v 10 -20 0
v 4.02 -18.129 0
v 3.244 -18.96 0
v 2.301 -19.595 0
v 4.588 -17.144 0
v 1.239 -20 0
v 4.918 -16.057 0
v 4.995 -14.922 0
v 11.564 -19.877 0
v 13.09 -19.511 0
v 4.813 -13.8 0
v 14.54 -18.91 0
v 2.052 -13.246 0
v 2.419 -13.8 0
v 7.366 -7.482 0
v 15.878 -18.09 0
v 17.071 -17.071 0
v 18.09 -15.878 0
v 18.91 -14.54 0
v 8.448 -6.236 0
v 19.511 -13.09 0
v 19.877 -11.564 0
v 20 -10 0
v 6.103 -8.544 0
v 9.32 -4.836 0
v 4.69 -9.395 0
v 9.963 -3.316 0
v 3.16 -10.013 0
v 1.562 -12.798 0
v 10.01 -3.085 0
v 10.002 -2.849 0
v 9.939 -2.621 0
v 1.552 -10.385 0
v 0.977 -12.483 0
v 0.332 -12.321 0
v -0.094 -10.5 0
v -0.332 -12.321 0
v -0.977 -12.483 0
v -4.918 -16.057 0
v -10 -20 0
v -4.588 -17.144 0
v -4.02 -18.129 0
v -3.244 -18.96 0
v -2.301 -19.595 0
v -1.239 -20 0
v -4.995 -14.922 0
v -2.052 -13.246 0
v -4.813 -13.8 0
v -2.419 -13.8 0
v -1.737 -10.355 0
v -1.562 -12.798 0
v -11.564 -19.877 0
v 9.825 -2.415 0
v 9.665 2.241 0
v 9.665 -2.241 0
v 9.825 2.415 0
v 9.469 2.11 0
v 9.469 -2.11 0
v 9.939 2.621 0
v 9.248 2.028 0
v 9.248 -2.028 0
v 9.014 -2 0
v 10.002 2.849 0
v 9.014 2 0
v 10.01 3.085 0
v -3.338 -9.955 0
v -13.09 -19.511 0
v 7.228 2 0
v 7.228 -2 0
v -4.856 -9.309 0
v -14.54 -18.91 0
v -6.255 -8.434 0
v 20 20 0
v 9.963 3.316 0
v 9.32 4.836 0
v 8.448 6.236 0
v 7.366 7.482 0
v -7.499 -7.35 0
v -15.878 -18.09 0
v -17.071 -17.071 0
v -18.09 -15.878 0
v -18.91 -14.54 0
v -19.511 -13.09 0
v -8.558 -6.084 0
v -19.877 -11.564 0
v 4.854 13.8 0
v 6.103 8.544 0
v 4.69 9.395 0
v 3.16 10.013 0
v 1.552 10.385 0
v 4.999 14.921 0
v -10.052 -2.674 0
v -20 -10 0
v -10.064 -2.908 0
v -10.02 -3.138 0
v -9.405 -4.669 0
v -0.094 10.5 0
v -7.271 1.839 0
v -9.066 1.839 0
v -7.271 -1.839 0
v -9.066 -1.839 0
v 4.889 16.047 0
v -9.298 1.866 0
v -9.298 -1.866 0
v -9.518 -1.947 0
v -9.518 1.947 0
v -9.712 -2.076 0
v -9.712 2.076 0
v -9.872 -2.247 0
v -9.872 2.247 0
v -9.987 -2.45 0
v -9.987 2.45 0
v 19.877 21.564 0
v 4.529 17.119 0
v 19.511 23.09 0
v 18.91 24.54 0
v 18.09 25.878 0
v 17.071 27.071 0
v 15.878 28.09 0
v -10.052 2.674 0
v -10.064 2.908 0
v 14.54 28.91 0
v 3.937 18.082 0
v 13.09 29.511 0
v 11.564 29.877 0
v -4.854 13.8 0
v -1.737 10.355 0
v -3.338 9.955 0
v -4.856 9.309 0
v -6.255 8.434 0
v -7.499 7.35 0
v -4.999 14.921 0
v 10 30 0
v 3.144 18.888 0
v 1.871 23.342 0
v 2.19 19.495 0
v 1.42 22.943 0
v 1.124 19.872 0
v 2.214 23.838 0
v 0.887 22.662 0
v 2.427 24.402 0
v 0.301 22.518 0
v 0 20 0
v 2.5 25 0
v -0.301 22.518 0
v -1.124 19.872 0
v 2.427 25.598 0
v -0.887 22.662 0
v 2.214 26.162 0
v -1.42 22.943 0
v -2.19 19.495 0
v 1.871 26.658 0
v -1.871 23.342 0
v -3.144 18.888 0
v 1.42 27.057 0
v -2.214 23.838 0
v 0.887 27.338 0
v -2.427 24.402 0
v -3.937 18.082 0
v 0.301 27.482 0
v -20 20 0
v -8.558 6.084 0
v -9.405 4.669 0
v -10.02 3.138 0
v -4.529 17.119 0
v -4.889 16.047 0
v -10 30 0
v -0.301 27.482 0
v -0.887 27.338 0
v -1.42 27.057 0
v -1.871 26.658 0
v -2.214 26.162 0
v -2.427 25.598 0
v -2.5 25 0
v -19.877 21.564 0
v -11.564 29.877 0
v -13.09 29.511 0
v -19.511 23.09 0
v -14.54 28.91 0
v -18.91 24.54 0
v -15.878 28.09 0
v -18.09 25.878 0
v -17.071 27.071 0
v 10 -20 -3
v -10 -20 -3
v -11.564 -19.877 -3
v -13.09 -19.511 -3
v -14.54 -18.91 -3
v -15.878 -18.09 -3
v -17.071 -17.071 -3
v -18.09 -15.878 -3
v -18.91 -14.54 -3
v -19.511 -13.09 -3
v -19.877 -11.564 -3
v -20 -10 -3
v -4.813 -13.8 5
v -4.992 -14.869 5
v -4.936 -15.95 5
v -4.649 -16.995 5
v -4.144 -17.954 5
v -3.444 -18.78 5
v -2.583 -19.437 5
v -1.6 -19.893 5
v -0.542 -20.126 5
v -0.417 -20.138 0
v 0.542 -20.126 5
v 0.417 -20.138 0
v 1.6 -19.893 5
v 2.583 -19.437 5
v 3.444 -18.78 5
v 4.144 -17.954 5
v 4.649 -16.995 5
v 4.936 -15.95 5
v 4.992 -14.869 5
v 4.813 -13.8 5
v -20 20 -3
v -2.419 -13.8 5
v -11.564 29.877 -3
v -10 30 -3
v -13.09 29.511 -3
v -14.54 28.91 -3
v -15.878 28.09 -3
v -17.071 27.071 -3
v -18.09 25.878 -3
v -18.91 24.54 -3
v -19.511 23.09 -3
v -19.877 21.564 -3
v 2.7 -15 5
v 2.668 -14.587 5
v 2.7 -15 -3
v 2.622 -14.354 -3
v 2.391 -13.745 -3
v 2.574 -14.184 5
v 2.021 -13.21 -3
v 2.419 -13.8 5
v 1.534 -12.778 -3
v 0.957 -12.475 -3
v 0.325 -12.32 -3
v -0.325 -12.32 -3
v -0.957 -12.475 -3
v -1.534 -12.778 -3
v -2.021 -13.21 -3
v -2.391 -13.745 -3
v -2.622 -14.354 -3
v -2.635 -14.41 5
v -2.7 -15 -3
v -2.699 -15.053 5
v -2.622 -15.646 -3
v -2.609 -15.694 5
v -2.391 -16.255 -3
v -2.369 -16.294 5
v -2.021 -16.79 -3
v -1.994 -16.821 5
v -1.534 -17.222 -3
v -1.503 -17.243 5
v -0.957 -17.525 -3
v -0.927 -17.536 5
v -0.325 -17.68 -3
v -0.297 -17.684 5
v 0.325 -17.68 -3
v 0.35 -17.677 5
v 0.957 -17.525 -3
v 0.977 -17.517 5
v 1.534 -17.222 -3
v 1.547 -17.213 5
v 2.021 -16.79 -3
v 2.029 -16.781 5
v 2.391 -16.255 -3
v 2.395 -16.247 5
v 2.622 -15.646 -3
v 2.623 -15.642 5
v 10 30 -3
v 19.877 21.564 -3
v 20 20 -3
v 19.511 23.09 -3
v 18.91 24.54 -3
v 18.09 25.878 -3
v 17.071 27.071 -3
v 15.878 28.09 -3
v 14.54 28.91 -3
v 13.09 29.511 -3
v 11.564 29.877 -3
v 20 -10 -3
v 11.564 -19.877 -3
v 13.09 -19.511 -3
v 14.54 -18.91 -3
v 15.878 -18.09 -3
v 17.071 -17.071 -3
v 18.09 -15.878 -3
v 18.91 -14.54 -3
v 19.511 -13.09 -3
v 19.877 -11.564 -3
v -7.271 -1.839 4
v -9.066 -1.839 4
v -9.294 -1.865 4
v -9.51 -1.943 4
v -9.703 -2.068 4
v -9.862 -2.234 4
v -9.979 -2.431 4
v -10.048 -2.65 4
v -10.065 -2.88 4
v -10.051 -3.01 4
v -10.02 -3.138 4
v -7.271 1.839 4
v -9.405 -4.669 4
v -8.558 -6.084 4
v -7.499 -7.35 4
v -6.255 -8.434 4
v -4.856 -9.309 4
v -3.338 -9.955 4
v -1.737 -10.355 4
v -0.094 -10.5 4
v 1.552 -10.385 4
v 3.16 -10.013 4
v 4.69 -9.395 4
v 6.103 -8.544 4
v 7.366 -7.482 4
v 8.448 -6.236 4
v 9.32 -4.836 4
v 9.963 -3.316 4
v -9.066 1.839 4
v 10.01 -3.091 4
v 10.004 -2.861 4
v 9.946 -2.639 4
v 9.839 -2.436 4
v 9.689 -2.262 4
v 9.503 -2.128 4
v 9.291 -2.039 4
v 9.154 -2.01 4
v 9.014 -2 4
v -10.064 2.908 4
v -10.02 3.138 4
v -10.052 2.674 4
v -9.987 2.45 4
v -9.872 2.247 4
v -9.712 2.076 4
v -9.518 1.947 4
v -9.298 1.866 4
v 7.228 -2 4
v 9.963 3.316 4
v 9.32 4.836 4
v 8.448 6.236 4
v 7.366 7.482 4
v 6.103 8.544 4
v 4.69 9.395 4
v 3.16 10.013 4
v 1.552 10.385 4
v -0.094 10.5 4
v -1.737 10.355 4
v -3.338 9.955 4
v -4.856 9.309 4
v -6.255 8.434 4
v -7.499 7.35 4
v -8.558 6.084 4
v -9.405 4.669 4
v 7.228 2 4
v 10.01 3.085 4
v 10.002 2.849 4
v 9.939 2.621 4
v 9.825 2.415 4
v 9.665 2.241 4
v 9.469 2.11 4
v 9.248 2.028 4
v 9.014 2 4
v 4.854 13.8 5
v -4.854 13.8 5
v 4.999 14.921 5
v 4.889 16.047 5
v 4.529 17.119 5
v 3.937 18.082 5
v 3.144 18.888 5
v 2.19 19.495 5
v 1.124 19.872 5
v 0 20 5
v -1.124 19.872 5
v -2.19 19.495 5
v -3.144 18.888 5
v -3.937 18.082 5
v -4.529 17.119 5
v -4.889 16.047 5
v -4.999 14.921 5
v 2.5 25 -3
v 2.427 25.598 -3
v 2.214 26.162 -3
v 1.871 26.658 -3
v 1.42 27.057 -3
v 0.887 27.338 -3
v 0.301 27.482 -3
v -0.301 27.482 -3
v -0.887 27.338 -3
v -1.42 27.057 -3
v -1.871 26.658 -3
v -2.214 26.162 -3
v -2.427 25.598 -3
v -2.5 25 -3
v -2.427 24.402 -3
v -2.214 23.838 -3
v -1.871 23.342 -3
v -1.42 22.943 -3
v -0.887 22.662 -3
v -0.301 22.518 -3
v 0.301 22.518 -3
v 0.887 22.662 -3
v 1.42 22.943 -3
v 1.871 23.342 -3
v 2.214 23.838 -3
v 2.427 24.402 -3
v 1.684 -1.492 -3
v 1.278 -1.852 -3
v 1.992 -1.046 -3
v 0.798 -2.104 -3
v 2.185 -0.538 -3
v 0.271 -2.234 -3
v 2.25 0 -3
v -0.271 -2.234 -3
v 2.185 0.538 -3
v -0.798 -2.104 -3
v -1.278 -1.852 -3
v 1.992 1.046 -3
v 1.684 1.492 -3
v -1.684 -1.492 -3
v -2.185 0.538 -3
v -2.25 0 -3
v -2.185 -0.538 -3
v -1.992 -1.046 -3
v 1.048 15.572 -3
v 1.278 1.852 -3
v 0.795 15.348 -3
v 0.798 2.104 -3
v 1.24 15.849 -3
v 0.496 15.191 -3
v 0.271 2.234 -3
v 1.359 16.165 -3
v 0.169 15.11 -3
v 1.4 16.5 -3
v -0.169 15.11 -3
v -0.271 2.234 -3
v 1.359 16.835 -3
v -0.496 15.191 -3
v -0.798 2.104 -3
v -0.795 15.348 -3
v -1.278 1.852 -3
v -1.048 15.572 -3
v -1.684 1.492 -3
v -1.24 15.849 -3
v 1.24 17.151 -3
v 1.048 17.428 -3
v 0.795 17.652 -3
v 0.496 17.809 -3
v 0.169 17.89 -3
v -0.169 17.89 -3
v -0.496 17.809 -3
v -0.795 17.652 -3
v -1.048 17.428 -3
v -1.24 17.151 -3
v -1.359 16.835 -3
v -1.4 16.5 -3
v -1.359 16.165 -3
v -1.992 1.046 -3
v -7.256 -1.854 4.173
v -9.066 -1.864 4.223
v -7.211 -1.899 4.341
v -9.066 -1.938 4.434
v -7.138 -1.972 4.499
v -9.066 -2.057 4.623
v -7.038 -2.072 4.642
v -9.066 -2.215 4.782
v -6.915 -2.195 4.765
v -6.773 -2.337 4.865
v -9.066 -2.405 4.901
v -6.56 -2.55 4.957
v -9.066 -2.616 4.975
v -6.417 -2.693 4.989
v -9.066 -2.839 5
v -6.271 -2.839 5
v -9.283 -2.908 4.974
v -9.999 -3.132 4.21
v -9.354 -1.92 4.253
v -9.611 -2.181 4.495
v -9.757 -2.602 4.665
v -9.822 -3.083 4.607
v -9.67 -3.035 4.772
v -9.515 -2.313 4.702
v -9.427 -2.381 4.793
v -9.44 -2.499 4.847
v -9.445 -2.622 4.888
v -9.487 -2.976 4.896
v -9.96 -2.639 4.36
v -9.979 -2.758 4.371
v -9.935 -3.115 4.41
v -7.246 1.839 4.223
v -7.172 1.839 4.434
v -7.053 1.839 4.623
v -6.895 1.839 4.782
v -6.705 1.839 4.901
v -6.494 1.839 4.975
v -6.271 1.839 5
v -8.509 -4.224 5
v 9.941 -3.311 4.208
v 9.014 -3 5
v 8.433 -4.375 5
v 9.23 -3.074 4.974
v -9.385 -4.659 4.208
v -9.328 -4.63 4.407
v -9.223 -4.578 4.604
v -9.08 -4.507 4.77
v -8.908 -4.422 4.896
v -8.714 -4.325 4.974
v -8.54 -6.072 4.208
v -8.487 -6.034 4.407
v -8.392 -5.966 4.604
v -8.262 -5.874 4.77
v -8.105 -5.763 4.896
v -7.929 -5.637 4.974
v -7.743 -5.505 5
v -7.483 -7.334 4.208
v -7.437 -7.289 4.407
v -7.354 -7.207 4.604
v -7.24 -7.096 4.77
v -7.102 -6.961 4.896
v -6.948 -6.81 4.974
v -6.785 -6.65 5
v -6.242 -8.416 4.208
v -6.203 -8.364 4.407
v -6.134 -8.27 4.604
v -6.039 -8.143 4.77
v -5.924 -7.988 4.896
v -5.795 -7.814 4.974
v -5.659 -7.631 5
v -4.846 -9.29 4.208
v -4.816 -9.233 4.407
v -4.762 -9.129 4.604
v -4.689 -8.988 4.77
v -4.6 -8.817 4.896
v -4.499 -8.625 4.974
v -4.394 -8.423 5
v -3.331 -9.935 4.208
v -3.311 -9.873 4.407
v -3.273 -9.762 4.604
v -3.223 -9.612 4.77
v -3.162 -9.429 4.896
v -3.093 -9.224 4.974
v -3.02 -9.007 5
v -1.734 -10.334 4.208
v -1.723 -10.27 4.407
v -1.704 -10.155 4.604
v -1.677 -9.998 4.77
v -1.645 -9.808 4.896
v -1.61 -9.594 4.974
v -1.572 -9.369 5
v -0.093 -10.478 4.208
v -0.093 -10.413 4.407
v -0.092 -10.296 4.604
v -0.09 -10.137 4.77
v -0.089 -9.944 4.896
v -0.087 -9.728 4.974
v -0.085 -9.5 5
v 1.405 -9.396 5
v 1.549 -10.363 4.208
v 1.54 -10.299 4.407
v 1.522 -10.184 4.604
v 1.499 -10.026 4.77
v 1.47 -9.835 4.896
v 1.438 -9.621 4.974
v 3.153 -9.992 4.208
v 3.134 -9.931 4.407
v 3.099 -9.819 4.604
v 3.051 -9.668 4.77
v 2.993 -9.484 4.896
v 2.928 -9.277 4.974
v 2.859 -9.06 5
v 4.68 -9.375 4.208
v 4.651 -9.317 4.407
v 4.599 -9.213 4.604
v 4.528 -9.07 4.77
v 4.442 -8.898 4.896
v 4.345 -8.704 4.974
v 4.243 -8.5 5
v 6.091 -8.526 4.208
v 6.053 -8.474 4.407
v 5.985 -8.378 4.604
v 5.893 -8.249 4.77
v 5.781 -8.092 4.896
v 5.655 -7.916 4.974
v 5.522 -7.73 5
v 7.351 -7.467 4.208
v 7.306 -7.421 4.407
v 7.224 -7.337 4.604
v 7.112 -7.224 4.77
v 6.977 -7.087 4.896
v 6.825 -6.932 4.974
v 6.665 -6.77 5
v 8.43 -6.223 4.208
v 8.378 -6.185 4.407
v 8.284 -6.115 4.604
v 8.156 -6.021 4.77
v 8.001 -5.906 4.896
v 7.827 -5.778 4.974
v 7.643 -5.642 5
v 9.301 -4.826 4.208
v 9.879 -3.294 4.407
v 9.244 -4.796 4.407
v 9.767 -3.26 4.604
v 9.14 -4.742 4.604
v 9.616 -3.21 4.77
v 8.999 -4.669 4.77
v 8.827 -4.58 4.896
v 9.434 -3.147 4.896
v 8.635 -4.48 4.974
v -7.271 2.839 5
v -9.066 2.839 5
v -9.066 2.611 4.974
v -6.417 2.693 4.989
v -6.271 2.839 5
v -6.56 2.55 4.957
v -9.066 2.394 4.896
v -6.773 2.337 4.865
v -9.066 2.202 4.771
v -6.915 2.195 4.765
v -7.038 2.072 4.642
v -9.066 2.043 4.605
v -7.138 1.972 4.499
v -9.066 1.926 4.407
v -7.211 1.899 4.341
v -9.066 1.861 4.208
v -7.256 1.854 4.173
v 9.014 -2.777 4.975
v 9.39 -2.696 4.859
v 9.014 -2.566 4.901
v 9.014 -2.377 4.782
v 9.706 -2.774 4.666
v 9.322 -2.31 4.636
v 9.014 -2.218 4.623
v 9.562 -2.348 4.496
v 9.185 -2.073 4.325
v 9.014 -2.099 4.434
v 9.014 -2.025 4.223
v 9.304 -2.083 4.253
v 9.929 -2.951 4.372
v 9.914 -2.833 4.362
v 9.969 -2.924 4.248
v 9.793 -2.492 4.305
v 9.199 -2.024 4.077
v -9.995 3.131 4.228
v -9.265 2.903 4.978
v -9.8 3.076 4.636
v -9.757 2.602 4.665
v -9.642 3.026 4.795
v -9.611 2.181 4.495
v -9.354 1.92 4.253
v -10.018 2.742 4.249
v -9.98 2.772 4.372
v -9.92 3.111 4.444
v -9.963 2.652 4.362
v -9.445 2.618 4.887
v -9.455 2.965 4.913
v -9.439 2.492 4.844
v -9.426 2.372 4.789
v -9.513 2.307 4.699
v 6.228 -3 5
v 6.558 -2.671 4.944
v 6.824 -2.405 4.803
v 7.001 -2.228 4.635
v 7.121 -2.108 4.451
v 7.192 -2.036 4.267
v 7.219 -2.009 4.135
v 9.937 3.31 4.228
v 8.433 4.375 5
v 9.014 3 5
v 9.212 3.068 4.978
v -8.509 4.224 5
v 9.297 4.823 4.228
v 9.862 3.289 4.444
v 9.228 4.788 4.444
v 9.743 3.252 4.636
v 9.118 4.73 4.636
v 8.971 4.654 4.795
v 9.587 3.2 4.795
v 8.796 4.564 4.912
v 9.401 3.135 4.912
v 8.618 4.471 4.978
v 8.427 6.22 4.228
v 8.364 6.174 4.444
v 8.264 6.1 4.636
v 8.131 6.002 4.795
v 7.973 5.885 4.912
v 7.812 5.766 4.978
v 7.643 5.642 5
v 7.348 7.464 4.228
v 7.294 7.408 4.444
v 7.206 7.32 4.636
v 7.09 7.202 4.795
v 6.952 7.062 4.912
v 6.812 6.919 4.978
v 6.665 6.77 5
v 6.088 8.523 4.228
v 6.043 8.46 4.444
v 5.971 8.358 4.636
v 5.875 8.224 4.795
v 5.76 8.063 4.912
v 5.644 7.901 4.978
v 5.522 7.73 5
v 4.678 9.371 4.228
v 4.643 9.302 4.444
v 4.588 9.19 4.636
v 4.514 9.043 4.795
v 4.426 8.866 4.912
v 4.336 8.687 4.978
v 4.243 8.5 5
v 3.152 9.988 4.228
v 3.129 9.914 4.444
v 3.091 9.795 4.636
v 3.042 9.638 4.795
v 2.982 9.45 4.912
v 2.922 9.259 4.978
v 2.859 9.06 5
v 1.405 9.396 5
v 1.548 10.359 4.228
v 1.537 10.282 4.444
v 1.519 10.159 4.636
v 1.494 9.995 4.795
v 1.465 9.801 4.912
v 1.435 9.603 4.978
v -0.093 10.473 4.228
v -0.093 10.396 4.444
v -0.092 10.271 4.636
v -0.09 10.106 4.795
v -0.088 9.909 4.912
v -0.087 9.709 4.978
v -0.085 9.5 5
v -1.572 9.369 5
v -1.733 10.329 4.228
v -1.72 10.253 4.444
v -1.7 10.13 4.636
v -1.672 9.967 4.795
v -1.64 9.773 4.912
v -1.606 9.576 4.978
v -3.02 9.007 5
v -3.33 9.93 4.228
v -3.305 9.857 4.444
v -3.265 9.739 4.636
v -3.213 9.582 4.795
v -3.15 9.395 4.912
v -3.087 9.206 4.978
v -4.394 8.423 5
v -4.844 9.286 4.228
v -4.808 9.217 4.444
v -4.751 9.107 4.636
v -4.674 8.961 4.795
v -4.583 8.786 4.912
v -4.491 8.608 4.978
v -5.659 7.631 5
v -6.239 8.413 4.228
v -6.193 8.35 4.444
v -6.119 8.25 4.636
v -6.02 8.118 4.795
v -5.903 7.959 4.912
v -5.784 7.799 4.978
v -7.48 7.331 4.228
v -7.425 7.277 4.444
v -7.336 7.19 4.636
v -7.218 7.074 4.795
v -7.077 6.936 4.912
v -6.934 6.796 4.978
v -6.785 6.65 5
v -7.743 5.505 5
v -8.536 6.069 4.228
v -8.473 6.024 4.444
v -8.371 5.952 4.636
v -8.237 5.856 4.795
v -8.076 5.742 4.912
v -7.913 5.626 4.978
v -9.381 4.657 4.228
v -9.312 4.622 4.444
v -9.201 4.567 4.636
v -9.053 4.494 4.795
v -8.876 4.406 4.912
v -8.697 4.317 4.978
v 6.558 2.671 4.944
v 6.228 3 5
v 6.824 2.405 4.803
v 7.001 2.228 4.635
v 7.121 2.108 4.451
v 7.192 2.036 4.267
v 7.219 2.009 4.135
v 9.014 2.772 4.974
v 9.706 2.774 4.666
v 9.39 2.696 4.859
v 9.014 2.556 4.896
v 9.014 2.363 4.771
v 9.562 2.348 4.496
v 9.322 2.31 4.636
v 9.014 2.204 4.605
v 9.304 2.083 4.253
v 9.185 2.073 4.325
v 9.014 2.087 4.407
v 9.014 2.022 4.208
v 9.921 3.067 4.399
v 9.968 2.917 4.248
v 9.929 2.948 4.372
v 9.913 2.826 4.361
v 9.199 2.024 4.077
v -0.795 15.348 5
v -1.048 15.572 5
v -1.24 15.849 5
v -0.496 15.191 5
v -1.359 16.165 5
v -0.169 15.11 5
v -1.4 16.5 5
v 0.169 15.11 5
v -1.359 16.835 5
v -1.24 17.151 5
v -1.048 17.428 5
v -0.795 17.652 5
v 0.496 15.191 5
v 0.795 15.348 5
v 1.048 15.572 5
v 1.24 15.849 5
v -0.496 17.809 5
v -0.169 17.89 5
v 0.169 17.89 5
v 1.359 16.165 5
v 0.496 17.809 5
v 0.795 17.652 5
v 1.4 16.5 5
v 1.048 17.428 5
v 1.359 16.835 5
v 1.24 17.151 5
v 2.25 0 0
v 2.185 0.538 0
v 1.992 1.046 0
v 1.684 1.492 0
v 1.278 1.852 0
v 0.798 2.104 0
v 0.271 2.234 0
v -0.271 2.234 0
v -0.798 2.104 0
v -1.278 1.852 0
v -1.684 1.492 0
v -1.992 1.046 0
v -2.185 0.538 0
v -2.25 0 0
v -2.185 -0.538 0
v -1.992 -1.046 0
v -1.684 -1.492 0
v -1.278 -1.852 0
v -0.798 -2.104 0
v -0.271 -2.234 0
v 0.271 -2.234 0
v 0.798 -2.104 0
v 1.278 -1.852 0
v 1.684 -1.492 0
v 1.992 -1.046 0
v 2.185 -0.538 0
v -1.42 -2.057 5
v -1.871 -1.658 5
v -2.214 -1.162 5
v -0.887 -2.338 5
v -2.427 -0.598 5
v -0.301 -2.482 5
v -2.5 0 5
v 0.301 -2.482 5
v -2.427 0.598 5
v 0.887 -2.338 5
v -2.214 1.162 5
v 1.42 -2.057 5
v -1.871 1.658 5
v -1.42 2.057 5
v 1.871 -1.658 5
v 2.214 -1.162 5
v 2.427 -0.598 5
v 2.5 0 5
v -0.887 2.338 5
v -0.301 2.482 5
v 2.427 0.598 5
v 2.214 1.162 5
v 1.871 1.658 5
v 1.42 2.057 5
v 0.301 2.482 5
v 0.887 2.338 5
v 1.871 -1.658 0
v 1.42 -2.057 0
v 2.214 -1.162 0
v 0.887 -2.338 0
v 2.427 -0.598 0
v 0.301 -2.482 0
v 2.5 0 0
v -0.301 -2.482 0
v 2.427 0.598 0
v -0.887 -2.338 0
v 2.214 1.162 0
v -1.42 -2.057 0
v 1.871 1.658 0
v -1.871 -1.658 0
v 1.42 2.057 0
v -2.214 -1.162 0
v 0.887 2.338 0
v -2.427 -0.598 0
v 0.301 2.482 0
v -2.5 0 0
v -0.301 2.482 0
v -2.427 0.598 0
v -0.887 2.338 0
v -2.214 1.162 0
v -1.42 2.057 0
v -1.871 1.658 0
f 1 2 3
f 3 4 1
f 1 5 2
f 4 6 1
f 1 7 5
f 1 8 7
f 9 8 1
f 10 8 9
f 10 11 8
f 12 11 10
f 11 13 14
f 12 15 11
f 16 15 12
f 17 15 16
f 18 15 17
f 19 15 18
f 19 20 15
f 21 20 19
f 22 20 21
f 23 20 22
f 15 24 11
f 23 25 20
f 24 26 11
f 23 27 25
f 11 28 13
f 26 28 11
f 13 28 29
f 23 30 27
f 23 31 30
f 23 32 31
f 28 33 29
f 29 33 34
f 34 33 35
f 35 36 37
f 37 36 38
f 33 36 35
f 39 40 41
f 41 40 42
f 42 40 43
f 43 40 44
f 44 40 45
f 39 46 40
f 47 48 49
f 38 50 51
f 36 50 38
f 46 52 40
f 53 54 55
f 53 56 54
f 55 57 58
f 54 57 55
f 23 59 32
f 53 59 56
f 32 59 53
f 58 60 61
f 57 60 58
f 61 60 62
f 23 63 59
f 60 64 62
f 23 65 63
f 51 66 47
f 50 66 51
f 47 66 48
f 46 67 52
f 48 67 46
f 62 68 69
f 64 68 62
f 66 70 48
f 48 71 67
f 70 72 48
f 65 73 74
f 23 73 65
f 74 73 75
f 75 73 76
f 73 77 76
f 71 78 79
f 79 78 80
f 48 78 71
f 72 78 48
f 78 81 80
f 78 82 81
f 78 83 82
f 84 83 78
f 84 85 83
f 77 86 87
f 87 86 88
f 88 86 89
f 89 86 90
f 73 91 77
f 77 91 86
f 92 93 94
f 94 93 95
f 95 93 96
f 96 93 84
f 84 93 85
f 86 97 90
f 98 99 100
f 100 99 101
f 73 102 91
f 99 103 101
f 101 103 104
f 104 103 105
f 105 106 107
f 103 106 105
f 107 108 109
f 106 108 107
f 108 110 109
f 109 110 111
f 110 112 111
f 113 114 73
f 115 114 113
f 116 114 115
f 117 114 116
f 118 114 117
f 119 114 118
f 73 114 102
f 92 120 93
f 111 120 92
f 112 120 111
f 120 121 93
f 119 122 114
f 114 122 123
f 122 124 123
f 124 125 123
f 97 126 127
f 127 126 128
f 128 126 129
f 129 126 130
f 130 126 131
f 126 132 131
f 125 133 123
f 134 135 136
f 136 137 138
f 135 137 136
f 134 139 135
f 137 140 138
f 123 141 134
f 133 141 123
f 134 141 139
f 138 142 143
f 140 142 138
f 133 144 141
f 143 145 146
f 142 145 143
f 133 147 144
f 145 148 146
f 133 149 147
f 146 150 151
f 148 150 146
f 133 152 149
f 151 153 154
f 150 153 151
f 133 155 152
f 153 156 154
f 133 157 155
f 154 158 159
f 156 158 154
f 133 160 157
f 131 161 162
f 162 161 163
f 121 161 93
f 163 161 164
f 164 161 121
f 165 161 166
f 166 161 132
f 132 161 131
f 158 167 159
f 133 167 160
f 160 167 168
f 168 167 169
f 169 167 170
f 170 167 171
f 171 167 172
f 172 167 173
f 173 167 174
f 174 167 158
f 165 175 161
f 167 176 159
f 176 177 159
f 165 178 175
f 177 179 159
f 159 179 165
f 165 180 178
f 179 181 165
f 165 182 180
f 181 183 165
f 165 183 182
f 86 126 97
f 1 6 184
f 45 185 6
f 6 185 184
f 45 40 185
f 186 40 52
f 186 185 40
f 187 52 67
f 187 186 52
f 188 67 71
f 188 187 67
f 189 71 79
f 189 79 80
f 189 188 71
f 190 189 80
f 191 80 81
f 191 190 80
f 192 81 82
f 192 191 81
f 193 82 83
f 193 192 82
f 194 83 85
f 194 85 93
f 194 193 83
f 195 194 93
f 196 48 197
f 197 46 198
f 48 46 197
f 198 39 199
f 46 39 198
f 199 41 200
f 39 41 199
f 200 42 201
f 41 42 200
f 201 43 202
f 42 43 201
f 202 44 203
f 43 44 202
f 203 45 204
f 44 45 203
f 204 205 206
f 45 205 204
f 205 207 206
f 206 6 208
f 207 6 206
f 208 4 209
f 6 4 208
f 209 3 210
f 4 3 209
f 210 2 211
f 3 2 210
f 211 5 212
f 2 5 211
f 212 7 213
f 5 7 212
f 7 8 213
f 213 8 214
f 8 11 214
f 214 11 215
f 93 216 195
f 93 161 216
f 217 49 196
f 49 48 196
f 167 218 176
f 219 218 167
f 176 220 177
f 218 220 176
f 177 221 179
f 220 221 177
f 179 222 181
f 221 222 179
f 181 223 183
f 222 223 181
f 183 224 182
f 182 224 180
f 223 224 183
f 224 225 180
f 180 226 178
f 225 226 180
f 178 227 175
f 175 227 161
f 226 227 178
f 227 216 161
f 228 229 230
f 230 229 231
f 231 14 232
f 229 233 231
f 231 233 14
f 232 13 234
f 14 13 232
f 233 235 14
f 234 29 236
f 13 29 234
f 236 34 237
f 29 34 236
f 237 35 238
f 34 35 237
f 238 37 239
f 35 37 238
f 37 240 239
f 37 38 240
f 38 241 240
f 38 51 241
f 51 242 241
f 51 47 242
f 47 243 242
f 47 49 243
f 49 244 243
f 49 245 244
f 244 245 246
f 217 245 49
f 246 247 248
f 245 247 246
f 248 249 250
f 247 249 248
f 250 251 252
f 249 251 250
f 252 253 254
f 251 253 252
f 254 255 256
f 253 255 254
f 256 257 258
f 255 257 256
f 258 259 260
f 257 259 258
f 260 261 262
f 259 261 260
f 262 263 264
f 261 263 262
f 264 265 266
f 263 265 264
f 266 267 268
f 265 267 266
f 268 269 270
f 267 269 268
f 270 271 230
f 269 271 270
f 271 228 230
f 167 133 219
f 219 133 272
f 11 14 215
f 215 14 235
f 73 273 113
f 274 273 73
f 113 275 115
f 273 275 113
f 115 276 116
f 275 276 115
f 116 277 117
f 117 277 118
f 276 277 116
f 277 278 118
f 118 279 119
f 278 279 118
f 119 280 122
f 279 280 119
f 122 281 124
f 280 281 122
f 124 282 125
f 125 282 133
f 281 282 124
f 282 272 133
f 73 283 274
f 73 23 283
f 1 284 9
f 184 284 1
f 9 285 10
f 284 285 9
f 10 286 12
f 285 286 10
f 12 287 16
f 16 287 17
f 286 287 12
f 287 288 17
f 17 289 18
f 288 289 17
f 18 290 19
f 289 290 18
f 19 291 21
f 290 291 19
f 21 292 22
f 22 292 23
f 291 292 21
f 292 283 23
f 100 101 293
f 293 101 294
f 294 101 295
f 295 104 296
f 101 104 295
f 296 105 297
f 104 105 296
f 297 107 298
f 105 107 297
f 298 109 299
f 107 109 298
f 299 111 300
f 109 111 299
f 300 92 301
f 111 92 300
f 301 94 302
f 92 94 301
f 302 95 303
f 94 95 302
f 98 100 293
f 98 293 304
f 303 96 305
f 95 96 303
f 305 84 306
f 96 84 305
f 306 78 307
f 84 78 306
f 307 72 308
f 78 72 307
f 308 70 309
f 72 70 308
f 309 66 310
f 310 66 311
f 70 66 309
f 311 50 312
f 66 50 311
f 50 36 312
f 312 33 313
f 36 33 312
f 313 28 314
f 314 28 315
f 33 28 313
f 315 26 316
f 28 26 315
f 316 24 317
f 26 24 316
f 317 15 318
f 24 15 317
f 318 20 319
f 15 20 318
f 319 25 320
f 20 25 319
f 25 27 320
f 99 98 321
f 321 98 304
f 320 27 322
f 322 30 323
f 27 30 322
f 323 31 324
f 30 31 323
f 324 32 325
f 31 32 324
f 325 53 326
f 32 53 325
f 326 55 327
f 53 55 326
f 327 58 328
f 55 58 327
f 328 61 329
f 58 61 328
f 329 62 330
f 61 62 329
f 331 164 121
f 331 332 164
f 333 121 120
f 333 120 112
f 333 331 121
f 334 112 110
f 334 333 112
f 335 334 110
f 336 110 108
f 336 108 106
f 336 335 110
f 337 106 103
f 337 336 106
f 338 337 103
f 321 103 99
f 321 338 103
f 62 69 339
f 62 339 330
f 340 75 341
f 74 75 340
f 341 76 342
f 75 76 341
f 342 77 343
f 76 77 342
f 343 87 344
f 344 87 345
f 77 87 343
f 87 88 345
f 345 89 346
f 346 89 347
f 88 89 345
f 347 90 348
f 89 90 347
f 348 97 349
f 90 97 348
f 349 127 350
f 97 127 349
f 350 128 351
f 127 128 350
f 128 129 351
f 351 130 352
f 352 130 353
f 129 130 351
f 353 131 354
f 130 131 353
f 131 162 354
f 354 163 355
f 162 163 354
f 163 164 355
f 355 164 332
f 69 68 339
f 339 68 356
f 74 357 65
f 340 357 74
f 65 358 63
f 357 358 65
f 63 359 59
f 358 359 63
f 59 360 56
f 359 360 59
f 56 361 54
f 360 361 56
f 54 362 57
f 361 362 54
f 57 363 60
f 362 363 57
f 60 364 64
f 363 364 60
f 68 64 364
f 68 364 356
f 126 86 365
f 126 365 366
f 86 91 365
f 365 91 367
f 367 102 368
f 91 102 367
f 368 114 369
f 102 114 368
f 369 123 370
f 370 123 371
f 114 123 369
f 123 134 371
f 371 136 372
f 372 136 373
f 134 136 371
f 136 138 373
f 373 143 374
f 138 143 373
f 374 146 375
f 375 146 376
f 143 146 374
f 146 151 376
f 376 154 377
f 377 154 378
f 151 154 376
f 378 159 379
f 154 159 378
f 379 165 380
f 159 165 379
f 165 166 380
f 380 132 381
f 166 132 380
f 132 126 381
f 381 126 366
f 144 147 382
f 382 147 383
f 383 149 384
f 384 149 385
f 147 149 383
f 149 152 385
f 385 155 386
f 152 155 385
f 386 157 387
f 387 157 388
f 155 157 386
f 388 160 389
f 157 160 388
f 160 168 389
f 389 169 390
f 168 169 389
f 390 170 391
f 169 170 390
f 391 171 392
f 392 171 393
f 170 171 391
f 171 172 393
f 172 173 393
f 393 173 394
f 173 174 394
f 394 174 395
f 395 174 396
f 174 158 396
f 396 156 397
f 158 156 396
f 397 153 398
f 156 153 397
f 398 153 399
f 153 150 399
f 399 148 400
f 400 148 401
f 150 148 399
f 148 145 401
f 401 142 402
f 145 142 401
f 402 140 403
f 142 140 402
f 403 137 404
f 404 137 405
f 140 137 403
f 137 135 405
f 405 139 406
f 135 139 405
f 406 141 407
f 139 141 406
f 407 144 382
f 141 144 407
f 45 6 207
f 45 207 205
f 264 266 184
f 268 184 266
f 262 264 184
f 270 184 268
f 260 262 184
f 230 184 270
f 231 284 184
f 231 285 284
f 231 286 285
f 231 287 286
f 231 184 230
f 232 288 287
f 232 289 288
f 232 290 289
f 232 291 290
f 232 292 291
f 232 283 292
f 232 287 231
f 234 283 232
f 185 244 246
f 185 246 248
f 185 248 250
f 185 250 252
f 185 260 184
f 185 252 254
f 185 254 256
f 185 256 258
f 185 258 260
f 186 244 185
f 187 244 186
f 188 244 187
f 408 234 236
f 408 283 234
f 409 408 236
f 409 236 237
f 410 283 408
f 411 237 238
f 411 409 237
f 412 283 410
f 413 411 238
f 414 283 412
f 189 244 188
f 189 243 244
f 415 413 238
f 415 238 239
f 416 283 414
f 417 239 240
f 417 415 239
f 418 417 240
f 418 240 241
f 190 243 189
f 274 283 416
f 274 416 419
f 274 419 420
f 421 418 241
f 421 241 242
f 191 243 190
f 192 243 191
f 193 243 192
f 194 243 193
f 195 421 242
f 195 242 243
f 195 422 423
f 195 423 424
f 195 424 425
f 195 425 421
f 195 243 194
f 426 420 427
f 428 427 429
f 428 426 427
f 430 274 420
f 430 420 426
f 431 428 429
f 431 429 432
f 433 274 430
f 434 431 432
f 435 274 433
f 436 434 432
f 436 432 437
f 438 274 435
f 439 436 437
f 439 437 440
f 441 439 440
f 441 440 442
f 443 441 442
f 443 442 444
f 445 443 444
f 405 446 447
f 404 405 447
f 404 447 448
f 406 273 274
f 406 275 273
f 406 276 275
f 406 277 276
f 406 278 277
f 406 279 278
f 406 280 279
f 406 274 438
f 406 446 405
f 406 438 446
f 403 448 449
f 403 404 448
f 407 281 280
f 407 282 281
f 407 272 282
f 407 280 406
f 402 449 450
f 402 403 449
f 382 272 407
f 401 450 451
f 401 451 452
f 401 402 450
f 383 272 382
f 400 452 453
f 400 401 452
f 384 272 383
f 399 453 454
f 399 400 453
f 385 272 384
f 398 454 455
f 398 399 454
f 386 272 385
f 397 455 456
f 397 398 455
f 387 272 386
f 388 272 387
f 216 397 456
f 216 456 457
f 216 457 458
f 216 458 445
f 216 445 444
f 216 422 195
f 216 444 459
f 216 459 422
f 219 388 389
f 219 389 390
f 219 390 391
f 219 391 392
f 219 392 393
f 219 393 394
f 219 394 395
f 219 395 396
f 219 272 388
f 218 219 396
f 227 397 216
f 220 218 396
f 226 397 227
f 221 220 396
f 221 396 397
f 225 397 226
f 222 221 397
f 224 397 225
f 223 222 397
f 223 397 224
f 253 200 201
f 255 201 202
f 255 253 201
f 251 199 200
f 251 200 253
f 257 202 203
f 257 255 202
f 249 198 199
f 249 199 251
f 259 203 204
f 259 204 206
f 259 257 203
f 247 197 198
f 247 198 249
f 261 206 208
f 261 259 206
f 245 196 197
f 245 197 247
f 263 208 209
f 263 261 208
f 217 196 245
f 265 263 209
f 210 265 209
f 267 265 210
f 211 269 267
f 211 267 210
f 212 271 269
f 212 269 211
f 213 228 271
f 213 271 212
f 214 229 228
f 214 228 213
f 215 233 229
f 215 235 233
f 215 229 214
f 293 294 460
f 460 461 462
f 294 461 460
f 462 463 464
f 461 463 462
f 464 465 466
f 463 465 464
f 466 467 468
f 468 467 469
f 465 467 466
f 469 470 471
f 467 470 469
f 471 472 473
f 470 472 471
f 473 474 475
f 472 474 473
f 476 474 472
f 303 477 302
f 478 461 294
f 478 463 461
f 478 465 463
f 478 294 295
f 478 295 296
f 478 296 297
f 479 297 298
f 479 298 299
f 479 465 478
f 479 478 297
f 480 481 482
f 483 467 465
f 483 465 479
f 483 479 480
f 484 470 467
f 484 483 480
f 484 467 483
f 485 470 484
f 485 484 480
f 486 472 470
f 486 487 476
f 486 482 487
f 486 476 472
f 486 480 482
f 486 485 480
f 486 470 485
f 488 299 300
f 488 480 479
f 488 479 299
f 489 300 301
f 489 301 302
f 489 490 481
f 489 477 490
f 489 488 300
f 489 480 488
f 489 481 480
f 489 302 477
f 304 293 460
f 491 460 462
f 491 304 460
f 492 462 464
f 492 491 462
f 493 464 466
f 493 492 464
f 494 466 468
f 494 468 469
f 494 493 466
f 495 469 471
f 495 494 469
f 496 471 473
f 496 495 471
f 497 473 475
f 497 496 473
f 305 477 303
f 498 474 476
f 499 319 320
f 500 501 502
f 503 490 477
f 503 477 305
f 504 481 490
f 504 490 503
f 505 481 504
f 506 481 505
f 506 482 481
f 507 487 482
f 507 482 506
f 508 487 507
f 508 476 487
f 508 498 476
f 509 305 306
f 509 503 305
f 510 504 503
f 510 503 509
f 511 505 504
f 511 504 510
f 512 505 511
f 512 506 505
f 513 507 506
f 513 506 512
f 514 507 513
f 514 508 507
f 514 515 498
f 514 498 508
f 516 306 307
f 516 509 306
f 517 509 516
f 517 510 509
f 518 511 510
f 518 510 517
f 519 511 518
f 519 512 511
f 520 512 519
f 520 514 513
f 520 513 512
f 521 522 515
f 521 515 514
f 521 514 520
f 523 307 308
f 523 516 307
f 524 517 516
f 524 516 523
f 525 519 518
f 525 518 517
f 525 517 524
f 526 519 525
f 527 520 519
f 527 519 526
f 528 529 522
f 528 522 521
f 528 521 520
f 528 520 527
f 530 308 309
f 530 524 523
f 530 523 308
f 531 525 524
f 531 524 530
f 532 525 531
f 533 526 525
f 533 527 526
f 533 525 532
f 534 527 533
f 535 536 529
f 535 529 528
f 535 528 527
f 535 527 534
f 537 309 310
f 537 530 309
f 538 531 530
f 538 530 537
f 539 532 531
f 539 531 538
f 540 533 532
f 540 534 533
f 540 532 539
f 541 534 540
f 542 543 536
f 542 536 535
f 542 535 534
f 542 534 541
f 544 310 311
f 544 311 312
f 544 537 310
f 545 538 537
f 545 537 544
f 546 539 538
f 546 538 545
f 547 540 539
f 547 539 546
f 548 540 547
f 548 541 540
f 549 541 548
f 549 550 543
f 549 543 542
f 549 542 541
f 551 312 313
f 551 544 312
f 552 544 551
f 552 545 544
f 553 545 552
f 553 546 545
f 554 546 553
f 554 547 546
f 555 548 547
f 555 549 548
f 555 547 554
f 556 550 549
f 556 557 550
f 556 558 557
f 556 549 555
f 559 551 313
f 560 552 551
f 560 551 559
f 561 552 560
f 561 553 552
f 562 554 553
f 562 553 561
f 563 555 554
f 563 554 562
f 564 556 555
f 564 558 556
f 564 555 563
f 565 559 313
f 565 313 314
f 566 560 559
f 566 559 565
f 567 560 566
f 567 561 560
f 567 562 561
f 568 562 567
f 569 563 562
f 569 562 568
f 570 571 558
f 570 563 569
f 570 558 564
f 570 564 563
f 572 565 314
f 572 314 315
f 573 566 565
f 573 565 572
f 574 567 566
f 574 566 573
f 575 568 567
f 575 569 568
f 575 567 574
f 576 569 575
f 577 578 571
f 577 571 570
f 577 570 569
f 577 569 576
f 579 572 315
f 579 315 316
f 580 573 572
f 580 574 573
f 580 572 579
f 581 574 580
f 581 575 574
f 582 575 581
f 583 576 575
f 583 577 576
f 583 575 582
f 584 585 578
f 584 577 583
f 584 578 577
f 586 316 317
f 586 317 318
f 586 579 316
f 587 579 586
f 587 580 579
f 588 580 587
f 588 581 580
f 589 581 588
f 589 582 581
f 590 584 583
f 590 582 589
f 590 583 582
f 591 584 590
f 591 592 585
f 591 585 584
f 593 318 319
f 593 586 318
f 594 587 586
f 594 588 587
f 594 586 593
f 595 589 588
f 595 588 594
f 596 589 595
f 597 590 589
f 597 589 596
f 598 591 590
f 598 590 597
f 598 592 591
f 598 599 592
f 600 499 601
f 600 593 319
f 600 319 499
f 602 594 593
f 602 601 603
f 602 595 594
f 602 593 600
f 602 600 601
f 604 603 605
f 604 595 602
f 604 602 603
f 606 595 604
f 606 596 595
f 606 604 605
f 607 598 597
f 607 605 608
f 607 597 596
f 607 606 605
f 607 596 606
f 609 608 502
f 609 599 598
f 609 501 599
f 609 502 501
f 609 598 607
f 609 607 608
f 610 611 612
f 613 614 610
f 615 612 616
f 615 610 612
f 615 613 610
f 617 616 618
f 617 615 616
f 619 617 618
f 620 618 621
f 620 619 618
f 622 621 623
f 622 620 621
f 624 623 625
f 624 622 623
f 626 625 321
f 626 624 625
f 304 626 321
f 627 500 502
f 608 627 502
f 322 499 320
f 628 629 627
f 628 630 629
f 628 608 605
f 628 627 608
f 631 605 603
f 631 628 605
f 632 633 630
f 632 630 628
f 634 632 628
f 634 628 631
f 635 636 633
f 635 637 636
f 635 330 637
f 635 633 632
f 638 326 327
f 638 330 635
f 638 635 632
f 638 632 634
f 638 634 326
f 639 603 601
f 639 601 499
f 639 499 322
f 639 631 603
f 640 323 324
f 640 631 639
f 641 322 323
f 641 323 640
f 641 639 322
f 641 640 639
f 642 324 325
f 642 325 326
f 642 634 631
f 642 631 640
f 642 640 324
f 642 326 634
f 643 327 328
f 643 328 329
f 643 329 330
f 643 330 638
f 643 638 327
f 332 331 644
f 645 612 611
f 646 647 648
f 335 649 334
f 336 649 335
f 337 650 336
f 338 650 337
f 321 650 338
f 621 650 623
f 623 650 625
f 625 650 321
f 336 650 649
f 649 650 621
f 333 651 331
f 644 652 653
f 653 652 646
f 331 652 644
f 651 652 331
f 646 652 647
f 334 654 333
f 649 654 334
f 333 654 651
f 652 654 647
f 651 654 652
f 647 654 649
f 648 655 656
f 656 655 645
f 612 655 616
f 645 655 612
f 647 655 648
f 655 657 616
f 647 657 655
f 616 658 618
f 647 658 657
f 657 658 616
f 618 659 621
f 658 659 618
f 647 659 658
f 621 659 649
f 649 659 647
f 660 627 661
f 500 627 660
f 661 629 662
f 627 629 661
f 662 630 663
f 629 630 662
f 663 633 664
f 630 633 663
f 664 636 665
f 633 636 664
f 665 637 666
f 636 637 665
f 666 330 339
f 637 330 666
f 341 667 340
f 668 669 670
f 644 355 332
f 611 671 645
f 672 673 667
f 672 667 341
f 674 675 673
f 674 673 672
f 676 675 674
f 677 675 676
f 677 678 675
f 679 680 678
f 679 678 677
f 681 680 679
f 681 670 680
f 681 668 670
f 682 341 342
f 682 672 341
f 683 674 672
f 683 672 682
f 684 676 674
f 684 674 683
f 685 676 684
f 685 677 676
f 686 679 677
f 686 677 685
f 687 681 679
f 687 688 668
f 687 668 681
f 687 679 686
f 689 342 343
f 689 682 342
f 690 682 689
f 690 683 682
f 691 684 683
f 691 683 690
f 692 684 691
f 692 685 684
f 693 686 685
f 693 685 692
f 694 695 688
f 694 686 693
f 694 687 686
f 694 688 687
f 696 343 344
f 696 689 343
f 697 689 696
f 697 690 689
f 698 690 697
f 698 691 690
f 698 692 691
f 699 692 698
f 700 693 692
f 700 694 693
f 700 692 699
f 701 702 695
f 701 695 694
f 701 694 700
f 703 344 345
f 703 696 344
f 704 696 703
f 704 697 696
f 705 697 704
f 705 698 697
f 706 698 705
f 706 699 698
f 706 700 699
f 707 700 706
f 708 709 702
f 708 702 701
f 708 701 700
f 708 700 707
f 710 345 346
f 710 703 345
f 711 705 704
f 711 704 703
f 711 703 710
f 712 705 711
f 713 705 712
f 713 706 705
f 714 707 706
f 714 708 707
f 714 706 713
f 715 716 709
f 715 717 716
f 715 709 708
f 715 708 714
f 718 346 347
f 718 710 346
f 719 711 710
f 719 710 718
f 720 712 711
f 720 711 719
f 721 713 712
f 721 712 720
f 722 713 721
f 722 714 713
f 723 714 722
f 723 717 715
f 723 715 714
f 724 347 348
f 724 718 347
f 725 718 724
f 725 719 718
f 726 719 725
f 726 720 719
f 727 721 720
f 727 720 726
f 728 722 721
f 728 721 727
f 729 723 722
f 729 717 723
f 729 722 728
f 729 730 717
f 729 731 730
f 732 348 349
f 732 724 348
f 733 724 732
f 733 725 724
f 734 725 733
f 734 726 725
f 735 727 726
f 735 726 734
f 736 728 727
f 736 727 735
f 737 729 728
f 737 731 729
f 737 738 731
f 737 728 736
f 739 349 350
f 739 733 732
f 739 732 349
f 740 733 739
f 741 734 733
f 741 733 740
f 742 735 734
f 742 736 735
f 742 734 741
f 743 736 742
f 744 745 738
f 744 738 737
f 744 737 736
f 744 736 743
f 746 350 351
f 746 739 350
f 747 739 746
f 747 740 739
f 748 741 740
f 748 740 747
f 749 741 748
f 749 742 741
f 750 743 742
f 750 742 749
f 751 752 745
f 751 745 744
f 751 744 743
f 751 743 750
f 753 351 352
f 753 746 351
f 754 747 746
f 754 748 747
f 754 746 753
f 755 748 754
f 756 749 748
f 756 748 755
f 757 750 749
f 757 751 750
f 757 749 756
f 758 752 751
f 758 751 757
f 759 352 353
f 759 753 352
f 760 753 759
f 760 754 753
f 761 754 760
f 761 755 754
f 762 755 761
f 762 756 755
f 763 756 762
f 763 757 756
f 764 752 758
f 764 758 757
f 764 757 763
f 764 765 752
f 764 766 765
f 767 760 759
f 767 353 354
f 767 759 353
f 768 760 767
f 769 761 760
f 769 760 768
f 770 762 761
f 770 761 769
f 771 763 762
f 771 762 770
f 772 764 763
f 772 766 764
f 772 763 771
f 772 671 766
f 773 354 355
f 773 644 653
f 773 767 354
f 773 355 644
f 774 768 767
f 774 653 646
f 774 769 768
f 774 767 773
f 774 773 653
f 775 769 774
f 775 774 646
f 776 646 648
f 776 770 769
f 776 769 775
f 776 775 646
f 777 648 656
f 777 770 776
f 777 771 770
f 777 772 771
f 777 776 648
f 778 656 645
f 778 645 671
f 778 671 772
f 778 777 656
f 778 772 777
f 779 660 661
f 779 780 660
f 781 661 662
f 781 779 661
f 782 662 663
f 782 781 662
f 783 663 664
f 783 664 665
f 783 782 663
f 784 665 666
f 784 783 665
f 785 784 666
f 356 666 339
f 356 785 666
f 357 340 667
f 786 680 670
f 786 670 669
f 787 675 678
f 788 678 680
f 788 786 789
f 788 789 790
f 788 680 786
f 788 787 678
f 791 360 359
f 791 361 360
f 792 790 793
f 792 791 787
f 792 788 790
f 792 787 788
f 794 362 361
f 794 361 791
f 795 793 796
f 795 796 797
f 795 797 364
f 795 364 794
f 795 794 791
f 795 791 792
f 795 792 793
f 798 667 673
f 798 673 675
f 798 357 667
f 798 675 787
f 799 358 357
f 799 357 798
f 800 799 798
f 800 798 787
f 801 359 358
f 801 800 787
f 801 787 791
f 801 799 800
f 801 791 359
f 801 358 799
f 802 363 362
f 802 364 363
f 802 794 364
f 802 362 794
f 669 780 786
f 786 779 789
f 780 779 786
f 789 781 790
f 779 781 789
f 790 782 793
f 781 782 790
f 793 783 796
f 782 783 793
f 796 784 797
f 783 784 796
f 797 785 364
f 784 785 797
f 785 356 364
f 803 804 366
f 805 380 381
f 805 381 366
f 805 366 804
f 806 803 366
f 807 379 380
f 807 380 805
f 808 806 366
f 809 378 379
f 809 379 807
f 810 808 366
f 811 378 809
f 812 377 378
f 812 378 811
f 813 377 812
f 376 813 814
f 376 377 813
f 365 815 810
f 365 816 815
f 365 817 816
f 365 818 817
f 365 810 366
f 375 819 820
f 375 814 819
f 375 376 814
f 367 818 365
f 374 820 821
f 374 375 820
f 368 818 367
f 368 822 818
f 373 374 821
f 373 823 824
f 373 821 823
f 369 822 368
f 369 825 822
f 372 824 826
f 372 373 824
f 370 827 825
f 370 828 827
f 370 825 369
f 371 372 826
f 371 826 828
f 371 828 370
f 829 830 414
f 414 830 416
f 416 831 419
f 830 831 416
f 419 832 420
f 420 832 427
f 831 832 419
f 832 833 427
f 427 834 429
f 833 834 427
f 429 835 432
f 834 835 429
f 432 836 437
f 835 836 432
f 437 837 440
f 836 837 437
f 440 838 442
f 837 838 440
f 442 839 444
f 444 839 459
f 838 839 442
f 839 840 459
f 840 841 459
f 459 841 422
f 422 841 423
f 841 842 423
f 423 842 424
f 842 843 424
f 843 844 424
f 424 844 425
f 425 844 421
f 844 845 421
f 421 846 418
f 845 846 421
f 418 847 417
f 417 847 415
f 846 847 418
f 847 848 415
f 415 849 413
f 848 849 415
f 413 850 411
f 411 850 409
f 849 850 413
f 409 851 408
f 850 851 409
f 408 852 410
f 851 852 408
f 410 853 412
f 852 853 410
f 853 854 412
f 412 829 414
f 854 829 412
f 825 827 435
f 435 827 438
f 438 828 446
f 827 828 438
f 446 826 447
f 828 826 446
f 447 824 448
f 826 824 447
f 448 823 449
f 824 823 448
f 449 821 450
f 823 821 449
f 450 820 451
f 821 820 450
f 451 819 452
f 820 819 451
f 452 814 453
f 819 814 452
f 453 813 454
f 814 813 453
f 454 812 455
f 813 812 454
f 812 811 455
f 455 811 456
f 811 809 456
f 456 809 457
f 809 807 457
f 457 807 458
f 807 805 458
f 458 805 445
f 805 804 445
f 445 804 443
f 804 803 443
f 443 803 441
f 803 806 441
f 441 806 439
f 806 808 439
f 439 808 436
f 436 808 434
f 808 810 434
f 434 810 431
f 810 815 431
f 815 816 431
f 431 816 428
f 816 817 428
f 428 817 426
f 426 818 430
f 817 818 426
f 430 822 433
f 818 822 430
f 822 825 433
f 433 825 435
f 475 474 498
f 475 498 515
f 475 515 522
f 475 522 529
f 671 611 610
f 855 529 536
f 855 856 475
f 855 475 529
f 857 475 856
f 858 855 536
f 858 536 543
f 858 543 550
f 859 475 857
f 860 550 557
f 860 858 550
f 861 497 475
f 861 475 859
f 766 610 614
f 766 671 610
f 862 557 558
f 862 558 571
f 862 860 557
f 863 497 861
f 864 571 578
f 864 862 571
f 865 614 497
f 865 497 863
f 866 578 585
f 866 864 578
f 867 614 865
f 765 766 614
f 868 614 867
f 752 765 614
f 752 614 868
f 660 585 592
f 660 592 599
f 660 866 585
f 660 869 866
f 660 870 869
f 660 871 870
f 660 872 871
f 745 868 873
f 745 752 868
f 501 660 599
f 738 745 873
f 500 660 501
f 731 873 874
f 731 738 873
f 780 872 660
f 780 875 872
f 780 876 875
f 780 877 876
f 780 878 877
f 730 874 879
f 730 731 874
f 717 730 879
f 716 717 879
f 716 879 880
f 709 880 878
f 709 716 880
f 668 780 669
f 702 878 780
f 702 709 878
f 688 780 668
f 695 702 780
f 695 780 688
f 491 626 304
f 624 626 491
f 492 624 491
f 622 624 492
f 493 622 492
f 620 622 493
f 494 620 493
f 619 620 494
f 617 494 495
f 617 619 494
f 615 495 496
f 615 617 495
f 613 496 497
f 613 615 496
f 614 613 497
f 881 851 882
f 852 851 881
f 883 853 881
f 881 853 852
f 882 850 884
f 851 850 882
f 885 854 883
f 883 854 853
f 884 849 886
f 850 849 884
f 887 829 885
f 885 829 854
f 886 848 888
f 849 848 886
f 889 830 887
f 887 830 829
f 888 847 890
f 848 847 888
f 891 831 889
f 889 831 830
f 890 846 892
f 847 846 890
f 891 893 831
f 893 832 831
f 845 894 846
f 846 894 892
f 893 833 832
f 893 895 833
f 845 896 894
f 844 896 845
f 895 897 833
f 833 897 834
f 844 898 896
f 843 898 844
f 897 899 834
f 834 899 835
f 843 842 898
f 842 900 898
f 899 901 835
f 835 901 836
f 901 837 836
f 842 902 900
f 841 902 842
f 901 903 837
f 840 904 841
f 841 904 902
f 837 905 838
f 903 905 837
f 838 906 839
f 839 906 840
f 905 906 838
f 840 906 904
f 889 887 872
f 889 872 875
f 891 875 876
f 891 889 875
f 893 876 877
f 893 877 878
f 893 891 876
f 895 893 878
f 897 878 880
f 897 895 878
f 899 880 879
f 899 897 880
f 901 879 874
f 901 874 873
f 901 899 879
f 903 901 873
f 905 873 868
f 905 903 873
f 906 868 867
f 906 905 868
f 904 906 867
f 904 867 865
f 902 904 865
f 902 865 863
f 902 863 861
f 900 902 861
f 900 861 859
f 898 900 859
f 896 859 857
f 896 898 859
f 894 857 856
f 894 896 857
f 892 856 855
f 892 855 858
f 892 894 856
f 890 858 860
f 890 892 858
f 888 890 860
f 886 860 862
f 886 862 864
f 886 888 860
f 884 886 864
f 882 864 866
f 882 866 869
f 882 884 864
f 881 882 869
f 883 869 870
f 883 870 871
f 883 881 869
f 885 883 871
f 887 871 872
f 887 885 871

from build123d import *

# Parameters (mm, degrees)
SKETCH001_W   = 40
SKETCH001_H   = 50
SKETCH001_R   = 2.25
SKETCH001_R_2 = 2.5
PAD001_DEPTH  = 3
SKETCH_R      = 2.5
PAD_DEPTH     = 5
PAD002_DEPTH  = 5
SKETCH003_R   = 1.4
SKETCH003_R_2 = 2.7
POCKET_DEPTH  = 8.001
FILLET_R      = 1
FILLET001_R   = 1
FILLET002_R   = 1
FILLET003_R   = 1
FILLET004_R   = 10


with BuildPart() as part:
    # Sketch001 → Pad001 (new body)
    with BuildSketch(Plane.XY):
        with Locations((0, 5)):
            Rectangle(SKETCH001_W, SKETCH001_H)
        Circle(SKETCH001_R, mode=Mode.SUBTRACT)
        with Locations((0, 25)):
            Circle(SKETCH001_R_2, mode=Mode.SUBTRACT)
        with Locations((0, -15)):
            Circle(SKETCH001_R_2, mode=Mode.SUBTRACT)
    extrude(amount=-PAD001_DEPTH)

    # Sketch → Pad (join)
    with BuildSketch(Plane.XY):
        with BuildLine():
            ThreePointArc((-10.337741, -1.838777), (-0.081993, -10.49968), (10.307764, -2))
            Line((7.228416, -2), (10.307764, -2))
            Line((7.228416, -2), (7.228416, 2))
            Line((10.307764, 2), (7.228416, 2))
            ThreePointArc((10.307764, 2), (-0.081993, 10.49968), (-10.337741, 1.838777))
            Line((-10.337741, 1.838777), (-7.2711, 1.838777))
            Line((-7.2711, -1.838777), (-7.2711, 1.838777))
            Line((-7.2711, -1.838777), (-10.337741, -1.838777))
        make_face()
        Circle(SKETCH_R, mode=Mode.SUBTRACT)
    extrude(amount=PAD_DEPTH)

    # Sketch002 → Pad002 (join)
    with BuildSketch(Plane.XY):
        with BuildLine():
            ThreePointArc((-4.812647, -13.8), (0, -20.155888), (4.812647, -13.8))
            Line((4.812647, -13.8), (-4.812647, -13.8))
        make_face()
        with BuildLine():
            ThreePointArc((4.853864, 13.8), (0, 20), (-4.853864, 13.8))
            Line((4.853864, 13.8), (-4.853864, 13.8))
        make_face()
    extrude(amount=PAD002_DEPTH)

    # Sketch003 (on Face23 of Pad002) → Pocket (cut, through all)
    with BuildSketch(Plane.XY.offset(5)):
        with Locations((0, 16.5)):
            Circle(SKETCH003_R)
        with Locations((0, -15)):
            Circle(SKETCH003_R_2)
    extrude(amount=-POCKET_DEPTH, mode=Mode.SUBTRACT)

    # Fillet
    fillet_edges = [part.edges().sort_by_distance(p)[0] for p in [
        (-0.081993, -10.49968, 5),
        (-0.081993, 10.49968, 5),
    ]]
    fillet(fillet_edges, radius=FILLET_R)

    # Fillet001
    fillet001_edges = [part.edges().sort_by_distance(p)[0] for p in [
        (8.257752, 2, 5),
        (7.228416, 0, 5),
        (8.257752, -2, 5),
    ]]
    fillet(fillet001_edges, radius=FILLET001_R)

    # Fillet002
    fillet002_edges = [part.edges().sort_by_distance(p)[0] for p in [
        (-8.295724, 1.838777, 5),
    ]]
    fillet(fillet002_edges, radius=FILLET002_R)

    # Fillet003
    fillet003_edges = [part.edges().sort_by_distance(p)[0] for p in [
        (-7.2711, 0, 5),
        (-8.295724, -1.838777, 5),
    ]]
    fillet(fillet003_edges, radius=FILLET003_R)

    # Fillet004
    fillet004_edges = [part.edges().sort_by_distance(p)[0] for p in [
        (20, -20, -1.5),
        (-20, -20, -1.5),
        (20, 30, -1.5),
        (-20, 30, -1.5),
    ]]
    fillet(fillet004_edges, radius=FILLET004_R)


solid = part.part
